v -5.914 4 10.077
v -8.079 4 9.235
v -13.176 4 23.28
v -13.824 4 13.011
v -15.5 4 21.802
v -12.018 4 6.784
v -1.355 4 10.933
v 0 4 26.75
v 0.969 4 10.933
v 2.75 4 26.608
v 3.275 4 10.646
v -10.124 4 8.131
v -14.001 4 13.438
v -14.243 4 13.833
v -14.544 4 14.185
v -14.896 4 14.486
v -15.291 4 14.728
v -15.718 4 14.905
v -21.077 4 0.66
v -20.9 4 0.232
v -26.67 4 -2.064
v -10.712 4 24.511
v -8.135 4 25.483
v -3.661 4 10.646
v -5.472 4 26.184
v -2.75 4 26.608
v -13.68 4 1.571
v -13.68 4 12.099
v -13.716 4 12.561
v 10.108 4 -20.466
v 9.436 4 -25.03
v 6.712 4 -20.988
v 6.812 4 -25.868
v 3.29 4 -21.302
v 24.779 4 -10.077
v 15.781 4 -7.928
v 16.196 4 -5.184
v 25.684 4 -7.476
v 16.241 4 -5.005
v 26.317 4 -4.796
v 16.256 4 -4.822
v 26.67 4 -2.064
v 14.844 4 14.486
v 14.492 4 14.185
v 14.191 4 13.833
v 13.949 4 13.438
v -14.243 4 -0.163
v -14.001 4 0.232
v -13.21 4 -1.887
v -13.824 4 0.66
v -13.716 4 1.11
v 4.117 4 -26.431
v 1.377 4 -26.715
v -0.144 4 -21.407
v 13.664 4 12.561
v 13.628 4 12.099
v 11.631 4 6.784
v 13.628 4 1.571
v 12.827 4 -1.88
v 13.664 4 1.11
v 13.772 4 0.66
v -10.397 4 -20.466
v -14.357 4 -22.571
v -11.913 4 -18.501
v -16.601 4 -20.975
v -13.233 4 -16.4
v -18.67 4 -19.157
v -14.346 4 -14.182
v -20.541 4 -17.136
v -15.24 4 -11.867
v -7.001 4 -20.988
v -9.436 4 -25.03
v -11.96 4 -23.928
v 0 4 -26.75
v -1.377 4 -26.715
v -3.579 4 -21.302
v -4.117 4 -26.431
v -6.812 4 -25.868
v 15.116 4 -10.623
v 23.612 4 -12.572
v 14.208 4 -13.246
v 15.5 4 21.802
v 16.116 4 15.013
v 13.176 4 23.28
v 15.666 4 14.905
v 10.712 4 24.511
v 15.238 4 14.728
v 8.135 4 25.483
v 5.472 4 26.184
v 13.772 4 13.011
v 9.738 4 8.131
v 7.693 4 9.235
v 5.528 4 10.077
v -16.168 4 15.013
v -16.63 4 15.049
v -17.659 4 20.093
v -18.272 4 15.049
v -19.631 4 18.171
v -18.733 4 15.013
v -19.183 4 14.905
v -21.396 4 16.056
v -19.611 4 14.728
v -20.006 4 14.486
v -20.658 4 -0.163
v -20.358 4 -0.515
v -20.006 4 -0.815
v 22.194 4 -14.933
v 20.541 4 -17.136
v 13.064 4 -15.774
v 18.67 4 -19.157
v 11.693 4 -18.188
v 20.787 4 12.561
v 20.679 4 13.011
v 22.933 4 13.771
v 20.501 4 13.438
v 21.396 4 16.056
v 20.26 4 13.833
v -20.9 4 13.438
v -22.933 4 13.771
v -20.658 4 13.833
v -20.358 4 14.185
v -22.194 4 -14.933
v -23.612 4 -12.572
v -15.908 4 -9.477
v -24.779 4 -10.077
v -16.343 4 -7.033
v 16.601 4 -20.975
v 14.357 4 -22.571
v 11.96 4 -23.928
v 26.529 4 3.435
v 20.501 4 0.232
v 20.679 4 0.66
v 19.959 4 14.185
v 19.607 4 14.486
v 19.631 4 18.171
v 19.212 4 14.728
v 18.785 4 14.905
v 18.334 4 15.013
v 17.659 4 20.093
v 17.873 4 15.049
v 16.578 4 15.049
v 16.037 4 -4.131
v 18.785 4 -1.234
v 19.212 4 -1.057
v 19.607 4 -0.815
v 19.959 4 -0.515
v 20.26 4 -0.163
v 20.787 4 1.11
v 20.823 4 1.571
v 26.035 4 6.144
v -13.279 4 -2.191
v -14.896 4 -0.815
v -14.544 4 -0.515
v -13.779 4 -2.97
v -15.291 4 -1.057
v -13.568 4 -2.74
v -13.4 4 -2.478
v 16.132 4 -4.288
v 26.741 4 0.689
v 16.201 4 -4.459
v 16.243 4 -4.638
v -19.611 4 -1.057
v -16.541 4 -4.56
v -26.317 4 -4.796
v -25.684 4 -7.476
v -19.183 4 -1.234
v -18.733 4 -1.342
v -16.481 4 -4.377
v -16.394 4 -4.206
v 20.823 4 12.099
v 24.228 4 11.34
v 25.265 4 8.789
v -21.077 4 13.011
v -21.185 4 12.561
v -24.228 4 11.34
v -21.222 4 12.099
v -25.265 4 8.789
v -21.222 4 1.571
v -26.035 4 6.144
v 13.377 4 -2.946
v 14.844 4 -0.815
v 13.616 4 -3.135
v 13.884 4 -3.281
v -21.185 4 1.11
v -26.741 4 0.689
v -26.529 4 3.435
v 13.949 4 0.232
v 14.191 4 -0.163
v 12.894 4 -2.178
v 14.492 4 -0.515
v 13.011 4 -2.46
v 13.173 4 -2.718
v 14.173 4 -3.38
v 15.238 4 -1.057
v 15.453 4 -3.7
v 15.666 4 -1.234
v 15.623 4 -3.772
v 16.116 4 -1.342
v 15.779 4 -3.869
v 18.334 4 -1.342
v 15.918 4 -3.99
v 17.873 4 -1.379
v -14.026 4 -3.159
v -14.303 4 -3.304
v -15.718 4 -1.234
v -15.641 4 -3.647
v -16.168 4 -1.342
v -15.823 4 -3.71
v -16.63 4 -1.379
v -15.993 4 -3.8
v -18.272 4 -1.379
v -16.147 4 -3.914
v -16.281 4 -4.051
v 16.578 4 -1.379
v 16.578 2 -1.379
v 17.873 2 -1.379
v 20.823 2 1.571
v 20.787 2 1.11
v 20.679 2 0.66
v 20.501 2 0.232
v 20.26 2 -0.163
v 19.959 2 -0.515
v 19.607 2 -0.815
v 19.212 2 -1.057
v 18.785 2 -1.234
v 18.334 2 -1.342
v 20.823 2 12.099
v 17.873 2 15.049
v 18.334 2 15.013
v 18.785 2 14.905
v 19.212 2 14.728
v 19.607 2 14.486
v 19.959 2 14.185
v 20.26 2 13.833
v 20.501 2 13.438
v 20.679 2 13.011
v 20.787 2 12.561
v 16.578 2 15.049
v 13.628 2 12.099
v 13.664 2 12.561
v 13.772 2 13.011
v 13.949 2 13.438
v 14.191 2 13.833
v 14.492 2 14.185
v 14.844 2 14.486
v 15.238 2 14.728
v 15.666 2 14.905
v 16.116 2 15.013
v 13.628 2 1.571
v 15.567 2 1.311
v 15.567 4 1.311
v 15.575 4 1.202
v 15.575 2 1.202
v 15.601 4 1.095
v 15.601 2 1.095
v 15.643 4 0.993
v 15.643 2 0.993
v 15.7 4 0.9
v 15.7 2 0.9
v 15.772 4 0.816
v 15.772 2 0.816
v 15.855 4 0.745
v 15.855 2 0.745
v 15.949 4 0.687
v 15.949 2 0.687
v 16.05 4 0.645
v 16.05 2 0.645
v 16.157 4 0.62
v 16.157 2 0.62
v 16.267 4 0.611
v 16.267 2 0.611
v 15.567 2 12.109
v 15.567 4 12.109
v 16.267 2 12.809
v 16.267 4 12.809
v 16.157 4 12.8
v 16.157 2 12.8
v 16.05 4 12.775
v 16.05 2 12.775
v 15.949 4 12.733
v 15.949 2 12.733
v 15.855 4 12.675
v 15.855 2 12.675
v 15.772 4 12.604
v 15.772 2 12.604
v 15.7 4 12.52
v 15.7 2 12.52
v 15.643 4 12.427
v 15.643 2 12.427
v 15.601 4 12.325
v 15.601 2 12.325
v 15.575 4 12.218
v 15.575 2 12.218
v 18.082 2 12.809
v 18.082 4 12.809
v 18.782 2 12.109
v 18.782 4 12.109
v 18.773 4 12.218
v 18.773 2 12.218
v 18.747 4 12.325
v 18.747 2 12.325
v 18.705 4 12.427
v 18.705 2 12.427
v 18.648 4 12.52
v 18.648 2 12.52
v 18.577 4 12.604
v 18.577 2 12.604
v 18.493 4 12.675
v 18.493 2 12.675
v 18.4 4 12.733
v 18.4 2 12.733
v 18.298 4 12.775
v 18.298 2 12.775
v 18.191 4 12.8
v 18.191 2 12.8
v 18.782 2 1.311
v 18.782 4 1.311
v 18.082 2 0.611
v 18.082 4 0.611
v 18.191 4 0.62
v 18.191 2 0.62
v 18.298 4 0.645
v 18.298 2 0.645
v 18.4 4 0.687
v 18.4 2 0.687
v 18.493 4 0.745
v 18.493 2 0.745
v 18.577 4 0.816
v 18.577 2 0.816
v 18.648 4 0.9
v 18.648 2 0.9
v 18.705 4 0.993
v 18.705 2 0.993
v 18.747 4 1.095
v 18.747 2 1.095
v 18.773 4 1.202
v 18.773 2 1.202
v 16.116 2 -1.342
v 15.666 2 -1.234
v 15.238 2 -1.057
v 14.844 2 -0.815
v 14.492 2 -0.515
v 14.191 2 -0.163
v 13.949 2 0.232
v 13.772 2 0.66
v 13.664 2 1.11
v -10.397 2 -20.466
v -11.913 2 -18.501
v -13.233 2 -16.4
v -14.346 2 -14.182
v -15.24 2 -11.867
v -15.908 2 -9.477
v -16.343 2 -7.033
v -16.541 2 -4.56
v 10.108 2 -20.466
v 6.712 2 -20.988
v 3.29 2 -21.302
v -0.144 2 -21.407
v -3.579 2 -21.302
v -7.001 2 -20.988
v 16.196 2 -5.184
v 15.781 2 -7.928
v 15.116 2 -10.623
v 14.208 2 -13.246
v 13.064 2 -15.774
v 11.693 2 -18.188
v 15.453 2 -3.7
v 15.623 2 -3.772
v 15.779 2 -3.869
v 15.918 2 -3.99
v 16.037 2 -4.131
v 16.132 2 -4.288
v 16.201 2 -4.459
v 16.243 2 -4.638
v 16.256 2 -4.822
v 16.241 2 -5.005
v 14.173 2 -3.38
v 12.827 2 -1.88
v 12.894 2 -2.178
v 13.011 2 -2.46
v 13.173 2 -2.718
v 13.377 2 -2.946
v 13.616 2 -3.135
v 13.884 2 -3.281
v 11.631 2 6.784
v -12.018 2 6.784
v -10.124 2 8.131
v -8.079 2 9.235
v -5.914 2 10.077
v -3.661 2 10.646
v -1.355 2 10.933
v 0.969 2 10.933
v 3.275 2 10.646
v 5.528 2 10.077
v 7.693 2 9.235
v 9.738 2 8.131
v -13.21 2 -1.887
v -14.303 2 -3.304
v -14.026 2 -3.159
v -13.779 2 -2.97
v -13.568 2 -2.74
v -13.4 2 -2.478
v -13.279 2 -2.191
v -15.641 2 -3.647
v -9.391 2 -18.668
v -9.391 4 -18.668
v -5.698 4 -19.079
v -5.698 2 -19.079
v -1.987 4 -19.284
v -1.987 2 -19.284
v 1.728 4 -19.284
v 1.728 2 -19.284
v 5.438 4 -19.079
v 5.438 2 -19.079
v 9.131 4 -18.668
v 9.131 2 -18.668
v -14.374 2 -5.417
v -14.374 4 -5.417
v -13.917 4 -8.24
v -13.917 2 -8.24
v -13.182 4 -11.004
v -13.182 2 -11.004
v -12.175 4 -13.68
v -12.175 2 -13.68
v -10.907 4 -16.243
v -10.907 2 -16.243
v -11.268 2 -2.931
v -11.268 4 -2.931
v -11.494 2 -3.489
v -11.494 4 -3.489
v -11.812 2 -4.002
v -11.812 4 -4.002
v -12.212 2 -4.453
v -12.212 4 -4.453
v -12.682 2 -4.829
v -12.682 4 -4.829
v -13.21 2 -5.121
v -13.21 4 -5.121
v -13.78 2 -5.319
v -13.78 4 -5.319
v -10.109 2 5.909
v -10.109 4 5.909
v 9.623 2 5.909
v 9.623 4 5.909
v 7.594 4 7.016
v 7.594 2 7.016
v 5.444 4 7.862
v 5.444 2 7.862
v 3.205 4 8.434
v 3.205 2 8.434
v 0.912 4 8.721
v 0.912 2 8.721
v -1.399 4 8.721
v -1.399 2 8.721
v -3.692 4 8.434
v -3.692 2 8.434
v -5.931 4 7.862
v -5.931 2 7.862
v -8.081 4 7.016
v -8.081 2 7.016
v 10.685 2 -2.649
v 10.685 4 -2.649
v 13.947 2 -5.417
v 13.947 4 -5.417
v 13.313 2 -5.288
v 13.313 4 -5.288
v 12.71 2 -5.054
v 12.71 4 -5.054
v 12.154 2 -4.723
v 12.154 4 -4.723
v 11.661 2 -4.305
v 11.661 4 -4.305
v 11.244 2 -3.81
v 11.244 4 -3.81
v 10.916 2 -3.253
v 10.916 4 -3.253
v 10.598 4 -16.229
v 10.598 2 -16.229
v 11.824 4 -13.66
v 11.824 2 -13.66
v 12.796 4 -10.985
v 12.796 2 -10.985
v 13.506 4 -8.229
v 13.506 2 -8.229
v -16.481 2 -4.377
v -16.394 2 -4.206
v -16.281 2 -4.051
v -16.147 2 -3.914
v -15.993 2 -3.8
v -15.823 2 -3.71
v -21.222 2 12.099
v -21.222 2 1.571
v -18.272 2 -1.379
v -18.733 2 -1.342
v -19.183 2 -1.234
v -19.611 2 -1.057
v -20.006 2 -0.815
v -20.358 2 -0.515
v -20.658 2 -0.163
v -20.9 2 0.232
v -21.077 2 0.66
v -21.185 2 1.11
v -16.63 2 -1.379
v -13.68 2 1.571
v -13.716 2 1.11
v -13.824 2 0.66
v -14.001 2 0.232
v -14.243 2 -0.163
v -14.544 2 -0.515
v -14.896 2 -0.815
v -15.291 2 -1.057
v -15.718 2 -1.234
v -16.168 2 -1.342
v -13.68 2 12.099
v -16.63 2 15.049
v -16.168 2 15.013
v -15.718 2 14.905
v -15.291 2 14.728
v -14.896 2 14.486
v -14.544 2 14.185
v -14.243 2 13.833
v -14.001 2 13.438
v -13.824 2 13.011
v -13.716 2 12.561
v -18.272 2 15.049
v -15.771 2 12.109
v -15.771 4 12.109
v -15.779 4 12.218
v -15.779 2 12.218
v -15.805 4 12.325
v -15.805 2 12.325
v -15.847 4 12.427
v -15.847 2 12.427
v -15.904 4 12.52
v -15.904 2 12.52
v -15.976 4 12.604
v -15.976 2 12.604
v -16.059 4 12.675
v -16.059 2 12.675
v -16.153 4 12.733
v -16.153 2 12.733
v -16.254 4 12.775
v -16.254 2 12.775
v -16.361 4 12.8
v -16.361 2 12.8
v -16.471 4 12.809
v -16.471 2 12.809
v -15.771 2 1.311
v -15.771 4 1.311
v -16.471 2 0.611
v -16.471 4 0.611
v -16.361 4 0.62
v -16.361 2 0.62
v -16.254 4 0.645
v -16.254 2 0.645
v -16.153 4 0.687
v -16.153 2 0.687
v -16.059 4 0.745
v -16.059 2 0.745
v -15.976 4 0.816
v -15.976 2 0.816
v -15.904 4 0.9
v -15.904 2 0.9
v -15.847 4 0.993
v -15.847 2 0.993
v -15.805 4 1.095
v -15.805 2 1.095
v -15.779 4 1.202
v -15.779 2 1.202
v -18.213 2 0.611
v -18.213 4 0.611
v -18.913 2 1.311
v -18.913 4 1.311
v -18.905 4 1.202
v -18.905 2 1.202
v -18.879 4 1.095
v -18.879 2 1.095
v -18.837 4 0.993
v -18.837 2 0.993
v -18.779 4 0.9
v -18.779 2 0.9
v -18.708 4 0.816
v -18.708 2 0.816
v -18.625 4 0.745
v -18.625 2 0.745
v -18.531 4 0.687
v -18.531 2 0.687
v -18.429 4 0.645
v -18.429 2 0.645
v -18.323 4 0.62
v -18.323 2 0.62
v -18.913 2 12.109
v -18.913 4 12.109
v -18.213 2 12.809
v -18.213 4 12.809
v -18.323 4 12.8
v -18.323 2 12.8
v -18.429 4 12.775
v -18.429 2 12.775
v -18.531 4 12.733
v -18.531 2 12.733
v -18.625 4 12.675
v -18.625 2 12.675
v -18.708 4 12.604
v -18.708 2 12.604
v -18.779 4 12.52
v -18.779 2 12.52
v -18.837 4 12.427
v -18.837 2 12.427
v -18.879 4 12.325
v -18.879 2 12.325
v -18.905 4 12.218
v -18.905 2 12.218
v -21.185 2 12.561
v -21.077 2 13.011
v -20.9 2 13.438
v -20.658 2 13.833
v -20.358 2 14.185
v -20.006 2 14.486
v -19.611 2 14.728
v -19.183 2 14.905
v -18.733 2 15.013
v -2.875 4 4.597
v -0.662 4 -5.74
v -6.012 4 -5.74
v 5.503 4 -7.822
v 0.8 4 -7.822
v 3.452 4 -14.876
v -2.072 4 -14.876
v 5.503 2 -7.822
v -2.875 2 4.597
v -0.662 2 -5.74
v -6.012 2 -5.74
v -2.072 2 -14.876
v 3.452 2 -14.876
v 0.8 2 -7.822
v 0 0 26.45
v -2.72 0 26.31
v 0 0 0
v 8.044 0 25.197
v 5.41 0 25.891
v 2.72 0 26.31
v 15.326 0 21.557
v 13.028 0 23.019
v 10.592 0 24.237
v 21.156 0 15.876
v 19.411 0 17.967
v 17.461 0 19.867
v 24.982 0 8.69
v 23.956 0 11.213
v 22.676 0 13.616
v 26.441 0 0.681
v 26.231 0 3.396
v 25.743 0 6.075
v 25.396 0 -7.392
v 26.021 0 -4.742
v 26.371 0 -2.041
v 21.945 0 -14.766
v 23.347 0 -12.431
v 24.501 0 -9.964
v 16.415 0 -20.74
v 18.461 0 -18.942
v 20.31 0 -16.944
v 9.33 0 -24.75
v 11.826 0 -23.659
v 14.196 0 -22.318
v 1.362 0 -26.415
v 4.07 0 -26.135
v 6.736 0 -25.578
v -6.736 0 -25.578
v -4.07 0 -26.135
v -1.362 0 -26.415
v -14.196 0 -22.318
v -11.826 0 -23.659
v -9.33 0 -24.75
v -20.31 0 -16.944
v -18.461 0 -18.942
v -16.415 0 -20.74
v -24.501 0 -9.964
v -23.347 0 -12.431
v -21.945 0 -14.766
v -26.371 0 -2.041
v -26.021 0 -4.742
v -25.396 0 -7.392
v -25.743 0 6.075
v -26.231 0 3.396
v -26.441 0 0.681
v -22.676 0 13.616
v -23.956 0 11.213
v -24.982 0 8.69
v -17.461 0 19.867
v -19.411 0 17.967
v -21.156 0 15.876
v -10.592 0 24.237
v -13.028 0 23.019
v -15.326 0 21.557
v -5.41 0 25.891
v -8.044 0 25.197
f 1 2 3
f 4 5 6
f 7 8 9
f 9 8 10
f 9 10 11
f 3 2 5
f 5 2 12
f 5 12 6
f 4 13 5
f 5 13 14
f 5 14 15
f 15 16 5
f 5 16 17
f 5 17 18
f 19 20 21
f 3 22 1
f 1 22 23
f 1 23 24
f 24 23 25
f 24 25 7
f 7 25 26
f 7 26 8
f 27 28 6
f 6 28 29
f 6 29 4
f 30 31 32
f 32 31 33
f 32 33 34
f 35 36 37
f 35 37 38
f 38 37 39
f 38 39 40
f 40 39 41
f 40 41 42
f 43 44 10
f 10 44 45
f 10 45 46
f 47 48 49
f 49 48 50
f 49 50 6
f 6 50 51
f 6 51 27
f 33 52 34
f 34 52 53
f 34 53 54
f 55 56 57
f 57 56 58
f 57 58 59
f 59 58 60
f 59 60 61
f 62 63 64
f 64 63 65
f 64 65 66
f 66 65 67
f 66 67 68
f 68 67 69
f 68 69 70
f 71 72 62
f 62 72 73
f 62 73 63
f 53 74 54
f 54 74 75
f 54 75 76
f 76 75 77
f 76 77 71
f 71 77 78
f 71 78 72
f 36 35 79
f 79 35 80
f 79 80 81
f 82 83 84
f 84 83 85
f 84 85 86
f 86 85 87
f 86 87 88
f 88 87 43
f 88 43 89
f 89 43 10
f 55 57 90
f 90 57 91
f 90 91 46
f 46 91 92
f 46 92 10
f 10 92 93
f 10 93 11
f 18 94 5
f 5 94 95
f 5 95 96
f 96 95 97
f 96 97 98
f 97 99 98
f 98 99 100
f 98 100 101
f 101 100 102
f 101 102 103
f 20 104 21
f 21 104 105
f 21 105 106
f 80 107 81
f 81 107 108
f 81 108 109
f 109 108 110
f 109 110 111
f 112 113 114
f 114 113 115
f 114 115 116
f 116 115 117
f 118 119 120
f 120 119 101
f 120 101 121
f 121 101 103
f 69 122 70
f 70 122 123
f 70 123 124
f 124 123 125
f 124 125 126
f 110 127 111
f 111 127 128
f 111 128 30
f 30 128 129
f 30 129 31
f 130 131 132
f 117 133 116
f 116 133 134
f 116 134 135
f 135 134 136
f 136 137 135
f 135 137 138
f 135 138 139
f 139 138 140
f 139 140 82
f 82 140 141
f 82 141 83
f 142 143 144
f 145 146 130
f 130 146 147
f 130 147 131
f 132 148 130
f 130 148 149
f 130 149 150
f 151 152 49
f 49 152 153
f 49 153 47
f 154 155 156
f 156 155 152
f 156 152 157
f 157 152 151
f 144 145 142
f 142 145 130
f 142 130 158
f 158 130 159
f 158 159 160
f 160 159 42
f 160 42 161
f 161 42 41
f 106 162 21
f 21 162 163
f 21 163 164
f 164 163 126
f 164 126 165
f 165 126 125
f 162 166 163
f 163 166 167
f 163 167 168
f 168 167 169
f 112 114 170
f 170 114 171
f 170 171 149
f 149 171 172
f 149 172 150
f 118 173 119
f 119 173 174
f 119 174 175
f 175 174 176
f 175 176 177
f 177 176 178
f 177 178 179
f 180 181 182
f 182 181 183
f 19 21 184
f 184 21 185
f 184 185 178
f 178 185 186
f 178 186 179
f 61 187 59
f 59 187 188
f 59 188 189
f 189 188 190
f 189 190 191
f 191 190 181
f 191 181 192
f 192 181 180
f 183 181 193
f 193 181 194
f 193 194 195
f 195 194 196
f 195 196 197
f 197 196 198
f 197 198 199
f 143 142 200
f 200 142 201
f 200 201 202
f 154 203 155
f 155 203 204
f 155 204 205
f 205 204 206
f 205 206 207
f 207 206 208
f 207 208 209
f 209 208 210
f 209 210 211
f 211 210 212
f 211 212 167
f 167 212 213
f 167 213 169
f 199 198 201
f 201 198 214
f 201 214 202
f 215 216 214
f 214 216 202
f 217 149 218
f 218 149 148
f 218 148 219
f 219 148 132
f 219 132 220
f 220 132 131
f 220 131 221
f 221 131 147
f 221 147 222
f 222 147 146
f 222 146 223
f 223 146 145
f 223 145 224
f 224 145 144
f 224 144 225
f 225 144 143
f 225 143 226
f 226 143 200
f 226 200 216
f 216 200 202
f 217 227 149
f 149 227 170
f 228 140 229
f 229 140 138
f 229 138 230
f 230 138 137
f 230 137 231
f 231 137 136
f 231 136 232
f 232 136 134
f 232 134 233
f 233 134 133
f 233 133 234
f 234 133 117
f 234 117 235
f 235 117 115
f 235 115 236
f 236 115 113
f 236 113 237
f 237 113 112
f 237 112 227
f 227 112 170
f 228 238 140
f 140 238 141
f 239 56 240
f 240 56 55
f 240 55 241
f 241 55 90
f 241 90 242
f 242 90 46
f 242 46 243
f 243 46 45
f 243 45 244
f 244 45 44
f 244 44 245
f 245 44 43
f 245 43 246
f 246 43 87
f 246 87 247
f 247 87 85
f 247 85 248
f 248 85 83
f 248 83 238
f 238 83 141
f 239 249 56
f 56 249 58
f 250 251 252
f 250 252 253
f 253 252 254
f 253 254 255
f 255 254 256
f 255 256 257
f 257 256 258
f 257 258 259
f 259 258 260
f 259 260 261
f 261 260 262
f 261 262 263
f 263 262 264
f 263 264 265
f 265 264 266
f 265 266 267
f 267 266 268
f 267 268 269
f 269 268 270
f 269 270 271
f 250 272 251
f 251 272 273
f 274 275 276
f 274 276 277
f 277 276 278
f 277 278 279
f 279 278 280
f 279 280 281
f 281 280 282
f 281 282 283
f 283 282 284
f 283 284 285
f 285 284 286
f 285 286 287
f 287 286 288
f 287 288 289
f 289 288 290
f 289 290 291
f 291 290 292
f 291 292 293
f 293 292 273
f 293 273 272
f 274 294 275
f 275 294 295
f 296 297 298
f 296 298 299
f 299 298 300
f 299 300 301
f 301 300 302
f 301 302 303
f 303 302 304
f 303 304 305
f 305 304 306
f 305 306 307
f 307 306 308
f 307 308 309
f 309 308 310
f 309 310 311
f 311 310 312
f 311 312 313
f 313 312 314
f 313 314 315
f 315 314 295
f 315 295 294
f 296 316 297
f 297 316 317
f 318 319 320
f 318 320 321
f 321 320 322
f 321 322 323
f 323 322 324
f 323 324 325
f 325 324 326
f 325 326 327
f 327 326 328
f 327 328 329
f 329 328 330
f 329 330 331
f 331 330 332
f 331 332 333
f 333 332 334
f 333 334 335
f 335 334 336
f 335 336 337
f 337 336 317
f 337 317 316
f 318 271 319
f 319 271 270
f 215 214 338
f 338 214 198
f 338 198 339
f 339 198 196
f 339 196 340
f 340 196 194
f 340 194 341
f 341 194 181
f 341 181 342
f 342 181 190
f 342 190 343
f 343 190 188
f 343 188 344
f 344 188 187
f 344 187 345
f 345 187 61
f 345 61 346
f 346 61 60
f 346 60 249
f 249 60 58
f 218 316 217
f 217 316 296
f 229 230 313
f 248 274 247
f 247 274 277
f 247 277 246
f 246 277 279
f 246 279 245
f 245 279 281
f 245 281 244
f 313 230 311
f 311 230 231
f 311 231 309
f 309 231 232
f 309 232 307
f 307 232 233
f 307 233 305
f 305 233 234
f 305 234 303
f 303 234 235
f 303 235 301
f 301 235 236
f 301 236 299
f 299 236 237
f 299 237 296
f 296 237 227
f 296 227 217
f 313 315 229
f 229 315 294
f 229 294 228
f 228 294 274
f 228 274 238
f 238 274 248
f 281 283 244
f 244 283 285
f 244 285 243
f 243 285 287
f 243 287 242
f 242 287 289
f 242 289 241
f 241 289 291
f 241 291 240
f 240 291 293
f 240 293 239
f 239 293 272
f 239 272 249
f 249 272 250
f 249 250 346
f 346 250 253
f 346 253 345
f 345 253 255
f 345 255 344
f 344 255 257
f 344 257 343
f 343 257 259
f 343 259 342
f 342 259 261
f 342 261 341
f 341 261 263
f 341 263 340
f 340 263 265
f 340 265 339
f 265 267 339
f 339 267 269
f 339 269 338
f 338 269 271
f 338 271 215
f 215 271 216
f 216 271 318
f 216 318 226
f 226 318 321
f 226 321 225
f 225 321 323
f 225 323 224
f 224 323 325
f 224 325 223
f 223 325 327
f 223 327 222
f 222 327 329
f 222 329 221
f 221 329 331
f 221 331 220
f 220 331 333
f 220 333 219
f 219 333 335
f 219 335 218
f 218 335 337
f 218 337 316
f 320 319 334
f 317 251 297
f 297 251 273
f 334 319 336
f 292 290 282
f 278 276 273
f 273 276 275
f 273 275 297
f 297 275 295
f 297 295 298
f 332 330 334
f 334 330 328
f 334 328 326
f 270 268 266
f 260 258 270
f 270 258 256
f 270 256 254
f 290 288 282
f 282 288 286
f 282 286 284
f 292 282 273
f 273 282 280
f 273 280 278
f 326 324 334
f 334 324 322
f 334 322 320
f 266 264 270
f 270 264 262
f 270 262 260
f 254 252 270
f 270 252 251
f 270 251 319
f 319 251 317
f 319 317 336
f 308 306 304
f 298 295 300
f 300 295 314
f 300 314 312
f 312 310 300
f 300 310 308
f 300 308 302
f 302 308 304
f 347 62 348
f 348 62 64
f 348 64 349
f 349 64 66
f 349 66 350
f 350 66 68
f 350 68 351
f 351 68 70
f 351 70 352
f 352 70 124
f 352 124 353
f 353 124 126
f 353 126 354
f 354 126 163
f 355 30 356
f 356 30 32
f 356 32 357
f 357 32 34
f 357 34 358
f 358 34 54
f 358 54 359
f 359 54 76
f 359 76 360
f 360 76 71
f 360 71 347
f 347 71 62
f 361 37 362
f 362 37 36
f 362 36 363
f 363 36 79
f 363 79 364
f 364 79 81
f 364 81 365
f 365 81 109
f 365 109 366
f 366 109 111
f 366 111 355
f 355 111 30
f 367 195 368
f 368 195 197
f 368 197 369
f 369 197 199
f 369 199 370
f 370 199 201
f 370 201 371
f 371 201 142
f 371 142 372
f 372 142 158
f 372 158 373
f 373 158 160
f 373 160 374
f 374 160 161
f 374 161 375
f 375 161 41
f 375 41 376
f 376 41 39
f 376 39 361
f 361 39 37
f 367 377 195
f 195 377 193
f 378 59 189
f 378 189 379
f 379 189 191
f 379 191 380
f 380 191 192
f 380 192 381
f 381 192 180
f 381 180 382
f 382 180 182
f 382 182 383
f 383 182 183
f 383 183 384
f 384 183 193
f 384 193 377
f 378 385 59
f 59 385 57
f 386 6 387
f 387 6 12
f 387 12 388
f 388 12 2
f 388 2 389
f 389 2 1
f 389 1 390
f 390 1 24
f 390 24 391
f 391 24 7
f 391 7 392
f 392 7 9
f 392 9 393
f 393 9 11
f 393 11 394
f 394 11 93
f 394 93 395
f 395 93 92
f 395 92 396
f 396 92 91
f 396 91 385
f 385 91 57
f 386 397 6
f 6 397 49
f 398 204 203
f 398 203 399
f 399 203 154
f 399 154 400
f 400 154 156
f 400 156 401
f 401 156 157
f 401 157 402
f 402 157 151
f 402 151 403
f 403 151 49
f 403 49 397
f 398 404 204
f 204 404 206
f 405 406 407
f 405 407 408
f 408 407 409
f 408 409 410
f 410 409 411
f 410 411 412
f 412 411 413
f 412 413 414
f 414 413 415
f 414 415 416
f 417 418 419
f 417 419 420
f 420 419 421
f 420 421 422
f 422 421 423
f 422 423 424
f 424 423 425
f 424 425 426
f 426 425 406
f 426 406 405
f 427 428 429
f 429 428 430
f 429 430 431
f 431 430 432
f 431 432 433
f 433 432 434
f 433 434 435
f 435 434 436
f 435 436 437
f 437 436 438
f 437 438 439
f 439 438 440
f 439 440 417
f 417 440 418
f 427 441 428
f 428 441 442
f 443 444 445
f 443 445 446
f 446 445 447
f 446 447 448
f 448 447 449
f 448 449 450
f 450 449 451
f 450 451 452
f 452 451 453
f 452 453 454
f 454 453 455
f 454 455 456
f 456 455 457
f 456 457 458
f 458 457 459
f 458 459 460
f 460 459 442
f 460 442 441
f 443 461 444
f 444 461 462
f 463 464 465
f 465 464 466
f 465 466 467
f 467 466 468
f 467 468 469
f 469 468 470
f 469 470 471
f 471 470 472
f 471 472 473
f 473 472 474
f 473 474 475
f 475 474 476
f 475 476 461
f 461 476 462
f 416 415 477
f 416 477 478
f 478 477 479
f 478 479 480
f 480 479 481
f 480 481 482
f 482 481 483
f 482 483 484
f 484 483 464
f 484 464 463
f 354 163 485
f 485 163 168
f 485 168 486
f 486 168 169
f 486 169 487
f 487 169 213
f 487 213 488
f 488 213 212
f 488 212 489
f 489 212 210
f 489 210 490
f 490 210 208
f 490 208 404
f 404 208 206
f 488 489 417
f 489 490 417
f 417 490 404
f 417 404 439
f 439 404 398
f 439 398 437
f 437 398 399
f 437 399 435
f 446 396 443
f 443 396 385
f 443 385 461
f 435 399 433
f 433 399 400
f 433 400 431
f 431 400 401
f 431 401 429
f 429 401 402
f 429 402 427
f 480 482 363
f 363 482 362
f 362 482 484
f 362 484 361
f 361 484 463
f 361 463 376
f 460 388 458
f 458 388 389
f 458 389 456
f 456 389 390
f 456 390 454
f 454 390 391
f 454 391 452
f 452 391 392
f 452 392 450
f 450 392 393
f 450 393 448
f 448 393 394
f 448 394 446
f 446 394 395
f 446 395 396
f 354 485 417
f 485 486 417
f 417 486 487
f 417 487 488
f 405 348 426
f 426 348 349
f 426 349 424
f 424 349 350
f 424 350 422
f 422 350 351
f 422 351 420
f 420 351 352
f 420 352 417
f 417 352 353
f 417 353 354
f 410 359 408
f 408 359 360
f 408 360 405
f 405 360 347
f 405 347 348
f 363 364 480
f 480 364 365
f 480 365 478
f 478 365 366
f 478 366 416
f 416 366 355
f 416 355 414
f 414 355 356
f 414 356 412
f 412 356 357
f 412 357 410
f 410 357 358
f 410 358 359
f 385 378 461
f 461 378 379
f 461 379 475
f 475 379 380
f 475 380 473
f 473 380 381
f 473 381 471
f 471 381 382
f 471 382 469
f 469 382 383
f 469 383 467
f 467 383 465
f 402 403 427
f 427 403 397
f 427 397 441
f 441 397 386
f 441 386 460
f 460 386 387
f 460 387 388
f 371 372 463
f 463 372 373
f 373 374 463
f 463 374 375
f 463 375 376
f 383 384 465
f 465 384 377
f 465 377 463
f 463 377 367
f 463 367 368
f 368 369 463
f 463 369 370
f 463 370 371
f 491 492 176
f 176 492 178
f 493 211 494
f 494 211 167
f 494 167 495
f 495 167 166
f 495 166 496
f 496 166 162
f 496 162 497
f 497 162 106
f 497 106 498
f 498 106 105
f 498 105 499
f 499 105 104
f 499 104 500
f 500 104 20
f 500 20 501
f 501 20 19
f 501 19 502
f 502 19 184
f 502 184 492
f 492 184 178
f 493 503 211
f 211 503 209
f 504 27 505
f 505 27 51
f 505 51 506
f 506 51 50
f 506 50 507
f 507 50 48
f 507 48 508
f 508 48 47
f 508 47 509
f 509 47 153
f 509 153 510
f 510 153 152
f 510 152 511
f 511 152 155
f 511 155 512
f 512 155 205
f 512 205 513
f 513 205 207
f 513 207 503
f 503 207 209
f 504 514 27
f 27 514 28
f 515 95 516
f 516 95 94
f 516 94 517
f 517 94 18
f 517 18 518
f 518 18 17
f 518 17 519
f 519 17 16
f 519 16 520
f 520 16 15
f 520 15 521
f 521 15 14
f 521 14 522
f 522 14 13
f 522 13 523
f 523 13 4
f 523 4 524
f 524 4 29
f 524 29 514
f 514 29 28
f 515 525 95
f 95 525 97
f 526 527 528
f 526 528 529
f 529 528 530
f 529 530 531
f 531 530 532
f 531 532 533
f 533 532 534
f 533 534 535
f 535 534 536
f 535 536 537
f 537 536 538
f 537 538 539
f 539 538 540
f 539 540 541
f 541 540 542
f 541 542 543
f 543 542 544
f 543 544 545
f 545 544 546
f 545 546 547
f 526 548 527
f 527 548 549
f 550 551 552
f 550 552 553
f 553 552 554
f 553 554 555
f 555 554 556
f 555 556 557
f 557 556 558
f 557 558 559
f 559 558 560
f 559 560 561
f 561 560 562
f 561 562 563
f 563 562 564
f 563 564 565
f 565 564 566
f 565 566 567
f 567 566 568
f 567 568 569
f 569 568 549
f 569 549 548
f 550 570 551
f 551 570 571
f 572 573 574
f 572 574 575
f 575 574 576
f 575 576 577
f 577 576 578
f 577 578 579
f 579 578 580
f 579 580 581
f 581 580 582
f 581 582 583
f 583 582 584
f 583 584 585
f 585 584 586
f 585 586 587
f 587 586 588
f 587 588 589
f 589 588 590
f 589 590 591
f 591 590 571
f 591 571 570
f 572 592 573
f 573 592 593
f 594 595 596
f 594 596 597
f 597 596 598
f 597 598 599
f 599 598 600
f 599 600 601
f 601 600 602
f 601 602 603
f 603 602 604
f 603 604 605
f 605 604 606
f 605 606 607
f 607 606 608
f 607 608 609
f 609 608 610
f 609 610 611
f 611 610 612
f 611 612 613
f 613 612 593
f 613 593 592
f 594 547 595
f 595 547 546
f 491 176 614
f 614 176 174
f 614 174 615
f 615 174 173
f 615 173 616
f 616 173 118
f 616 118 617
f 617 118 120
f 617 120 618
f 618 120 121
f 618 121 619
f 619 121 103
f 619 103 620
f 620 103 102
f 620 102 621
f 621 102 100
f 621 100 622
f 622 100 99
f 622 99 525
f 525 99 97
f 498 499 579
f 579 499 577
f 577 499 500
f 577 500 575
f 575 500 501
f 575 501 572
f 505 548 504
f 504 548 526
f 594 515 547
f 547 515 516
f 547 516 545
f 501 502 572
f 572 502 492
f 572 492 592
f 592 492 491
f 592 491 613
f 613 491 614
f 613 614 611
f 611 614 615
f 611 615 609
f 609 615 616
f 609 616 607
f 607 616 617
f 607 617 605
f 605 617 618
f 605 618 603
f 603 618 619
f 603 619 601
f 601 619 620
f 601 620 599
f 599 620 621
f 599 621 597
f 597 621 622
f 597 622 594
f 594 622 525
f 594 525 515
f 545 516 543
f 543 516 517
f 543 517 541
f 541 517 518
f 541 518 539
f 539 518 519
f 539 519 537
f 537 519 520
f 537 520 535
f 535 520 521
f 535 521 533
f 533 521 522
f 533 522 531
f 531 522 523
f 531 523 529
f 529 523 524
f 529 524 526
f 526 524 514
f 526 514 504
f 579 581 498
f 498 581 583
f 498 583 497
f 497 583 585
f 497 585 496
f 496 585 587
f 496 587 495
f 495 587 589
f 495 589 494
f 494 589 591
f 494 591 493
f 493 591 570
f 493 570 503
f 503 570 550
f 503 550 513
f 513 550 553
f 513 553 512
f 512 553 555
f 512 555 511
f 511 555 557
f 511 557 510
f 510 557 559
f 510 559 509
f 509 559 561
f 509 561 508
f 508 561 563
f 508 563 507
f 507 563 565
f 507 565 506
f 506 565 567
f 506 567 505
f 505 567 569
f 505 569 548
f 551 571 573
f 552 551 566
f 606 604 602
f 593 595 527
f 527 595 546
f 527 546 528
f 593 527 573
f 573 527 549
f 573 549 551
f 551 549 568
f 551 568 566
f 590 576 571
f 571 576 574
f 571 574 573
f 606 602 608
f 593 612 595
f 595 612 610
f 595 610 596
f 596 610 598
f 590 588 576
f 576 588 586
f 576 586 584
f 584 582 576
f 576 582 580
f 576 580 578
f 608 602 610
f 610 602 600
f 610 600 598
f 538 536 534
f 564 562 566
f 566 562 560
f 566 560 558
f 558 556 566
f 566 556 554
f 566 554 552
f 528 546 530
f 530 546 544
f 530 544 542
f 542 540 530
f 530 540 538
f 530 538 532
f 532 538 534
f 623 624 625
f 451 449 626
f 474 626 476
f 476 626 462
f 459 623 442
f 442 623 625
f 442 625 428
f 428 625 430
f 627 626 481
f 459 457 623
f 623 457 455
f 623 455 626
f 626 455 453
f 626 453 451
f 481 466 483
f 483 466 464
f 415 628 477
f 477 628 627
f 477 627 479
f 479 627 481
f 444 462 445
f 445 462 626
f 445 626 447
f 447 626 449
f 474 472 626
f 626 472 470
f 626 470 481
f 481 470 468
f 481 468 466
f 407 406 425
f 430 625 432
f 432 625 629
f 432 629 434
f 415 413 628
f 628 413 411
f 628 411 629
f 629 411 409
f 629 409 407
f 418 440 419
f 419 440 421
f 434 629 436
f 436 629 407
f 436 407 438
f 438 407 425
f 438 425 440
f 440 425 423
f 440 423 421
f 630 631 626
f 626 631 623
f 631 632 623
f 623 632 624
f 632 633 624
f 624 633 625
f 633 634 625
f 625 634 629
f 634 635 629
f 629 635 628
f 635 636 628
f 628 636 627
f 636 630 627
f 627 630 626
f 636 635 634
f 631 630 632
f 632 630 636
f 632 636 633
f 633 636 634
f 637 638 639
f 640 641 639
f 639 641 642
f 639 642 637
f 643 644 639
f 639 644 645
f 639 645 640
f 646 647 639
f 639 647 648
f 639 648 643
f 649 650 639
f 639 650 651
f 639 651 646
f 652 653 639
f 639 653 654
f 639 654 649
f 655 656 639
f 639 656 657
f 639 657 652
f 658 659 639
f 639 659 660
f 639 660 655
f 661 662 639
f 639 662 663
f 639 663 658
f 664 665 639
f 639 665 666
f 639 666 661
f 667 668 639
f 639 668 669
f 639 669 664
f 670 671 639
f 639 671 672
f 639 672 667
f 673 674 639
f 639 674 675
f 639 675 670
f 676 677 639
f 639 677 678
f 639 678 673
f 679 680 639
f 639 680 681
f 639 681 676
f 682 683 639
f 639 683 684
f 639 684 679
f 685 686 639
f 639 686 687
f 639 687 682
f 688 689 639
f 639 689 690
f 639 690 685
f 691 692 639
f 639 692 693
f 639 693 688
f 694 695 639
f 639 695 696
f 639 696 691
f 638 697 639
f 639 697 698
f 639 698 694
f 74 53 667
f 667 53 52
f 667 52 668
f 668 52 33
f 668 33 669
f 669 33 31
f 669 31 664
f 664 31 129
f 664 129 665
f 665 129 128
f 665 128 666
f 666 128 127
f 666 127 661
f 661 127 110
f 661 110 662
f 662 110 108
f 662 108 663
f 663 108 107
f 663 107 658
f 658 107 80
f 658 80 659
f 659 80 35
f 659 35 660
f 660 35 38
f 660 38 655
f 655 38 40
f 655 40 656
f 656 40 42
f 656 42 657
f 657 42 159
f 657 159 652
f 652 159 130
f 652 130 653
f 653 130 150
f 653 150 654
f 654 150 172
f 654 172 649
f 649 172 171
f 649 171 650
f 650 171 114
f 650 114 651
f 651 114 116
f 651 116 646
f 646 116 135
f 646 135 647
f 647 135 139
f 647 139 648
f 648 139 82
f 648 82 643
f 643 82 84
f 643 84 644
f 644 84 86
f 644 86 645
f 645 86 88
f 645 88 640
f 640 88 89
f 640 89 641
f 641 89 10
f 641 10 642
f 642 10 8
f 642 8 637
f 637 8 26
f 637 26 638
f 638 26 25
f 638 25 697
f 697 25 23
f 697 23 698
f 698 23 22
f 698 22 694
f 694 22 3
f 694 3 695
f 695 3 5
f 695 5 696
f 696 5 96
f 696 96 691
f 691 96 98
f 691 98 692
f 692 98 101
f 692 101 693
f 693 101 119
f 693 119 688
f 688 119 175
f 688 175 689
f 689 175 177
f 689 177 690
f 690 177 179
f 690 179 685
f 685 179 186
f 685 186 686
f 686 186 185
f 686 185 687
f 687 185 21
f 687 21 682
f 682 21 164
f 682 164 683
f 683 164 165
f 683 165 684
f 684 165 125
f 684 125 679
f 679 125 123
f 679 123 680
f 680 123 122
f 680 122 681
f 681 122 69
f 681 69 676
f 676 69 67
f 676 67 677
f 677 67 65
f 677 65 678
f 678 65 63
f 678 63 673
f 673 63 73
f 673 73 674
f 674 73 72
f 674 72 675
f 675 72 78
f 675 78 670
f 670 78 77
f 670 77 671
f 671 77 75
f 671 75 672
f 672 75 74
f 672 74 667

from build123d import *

# Parameters (mm, degrees)
CROQUIS1_R              = 26.25
SALIENTE_EXTRUIR1_DEPTH = 4
CORTAR_EXTRUIR2_DEPTH   = 2
CROQUIS3_R              = 26.75
CROQUIS3_R_2            = 26.25
SALIENTE_EXTRUIR2_DEPTH = 4
CHAFL_N2_SIZE           = 0.3
CHAFL_N2_SIZE_2         = 4


with BuildPart() as part:
    # Croquis1 → Saliente-Extruir1 (new body)
    with BuildSketch(Plane(origin=(0, 0, 0), x_dir=(1, 0, 0), z_dir=(0, 1, 0))):
        with Locations(Location((0, 0, 0), (0, 0, 270))):
            Circle(CROQUIS1_R)
    extrude(amount=SALIENTE_EXTRUIR1_DEPTH)

    # Croquis2 → Cortar-Extruir2 (cut)
    # profile 1 of 4: a face of its own
    with BuildSketch(Plane(origin=(0, 4, 0), x_dir=(1, 0, 0), z_dir=(0, 1, 0))):
        with BuildLine():
            Line((16.577628019, 1.378684251), (17.872942997, 1.378684251))
            ThreePointArc((17.872942997, 1.378684251), (19.958908001, 0.514649256), (20.822942997, -1.571315749))
            Line((20.822942997, -1.571315749), (20.822942997, -12.099082076))
            ThreePointArc((20.822942997, -12.099082076), (19.958908001, -14.18504708), (17.872942997, -15.049082076))
            Line((17.872942997, -15.049082076), (16.577628019, -15.049082076))
            ThreePointArc((16.577628019, -15.049082076), (14.491663014, -14.18504708), (13.627628019, -12.099082076))
            Line((13.627628019, -12.099082076), (13.627628019, -1.571315749))
            ThreePointArc((13.627628019, -1.571315749), (14.491663014, 0.514649256), (16.577628019, 1.378684251))
        make_face()
        with BuildLine():
            ThreePointArc((16.26679092, -0.611177343), (15.771816174, -0.816202597), (15.56679092, -1.311177343))
            Line((15.56679092, -1.311177343), (15.56679092, -12.108932122))
            ThreePointArc((15.56679092, -12.108932122), (15.771816174, -12.603906869), (16.26679092, -12.808932122))
            Line((16.26679092, -12.808932122), (18.08171889, -12.808932122))
            ThreePointArc((18.08171889, -12.808932122), (18.576693636, -12.603906869), (18.78171889, -12.108932122))
            Line((18.78171889, -12.108932122), (18.78171889, -1.311177343))
            ThreePointArc((18.78171889, -1.311177343), (18.576693636, -0.816202597), (18.08171889, -0.611177343))
            Line((18.08171889, -0.611177343), (16.26679092, -0.611177343))
        make_face(mode=Mode.SUBTRACT)
    # profile 2 of 4: a face of its own
    with BuildSketch(Plane(origin=(0, 4, 0), x_dir=(1, 0, 0), z_dir=(0, 1, 0))):
        with BuildLine():
            ThreePointArc((-16.541154267, 4.559666994), (-14.820529985, 13.034857679), (-10.397118387, 20.466064507))
            ThreePointArc((-10.397118387, 20.466064507), (-0.144491455, 21.407214974), (10.108135477, 20.466064507))
            ThreePointArc((10.108135477, 20.466064507), (14.207692764, 13.245645686), (16.196417943, 5.184269249))
            ThreePointArc((16.196417943, 5.184269249), (16.132024065, 4.288372794), (15.452996259, 3.700411684))
            Line((15.452996259, 3.700411684), (14.173141036, 3.380229026))
            ThreePointArc((14.173141036, 3.380229026), (13.270359302, 2.836290622), (12.826889255, 1.880143059))
            Line((12.826889255, 1.880143059), (11.63113204, -6.78360674))
            ThreePointArc((11.63113204, -6.78360674), (-0.193198097, -10.969098115), (-12.017528234, -6.78360674))
            Line((-12.017528234, -6.78360674), (-13.210287359, 1.886657738))
            ThreePointArc((-13.210287359, 1.886657738), (-13.568040347, 2.740473566), (-14.30282929, 3.303566701))
            Line((-14.30282929, 3.303566701), (-15.641463565, 3.64729627))
            ThreePointArc((-15.641463565, 3.64729627), (-16.21669402, 3.979839116), (-16.541154267, 4.559666994))
        make_face()
        with BuildLine():
            ThreePointArc((-9.39054296, 18.667613115), (-0.129607572, 19.310065951), (9.131327816, 18.667613115))
            ThreePointArc((9.131327816, 18.667613115), (12.342092273, 12.334309576), (13.946689107, 5.417300749))
            ThreePointArc((13.946689107, 5.417300749), (11.898739751, 4.524535831), (10.6848875, 2.648985651))
            Line((10.6848875, 2.648985651), (9.622585247, -5.908678465))
            ThreePointArc((9.622585247, -5.908678465), (-0.243319564, -8.757565726), (-10.109224375, -5.908678465))
            Line((-10.109224375, -5.908678465), (-11.267843272, 2.930632851))
            ThreePointArc((-11.267843272, 2.930632851), (-12.439150787, 4.651094628), (-14.374319564, 5.417300749))
            ThreePointArc((-14.374319564, 5.417300749), (-12.712019595, 12.354486023), (-9.39054296, 18.667613115))
        make_face(mode=Mode.SUBTRACT)
    # profile 3 of 4: a face of its own
    with BuildSketch(Plane(origin=(0, 4, 0), x_dir=(1, 0, 0), z_dir=(0, 1, 0))):
        with BuildLine():
            Line((-21.221754159, -1.571315749), (-21.221754159, -12.099082076))
            ThreePointArc((-21.221754159, -12.099082076), (-20.357719163, -14.18504708), (-18.271754159, -15.049082076))
            Line((-18.271754159, -15.049082076), (-16.629915981, -15.049082076))
            ThreePointArc((-16.629915981, -15.049082076), (-14.543950977, -14.18504708), (-13.679915981, -12.099082076))
            Line((-13.679915981, -12.099082076), (-13.679915981, -1.571315749))
            ThreePointArc((-13.679915981, -1.571315749), (-14.543950977, 0.514649256), (-16.629915981, 1.378684251))
            Line((-16.629915981, 1.378684251), (-18.271754159, 1.378684251))
            ThreePointArc((-18.271754159, 1.378684251), (-20.357719163, 0.514649256), (-21.221754159, -1.571315749))
        make_face()
        with BuildLine():
            ThreePointArc((-16.470722605, -12.808932122), (-15.975747858, -12.603906869), (-15.770722605, -12.108932122))
            Line((-15.770722605, -12.108932122), (-15.770722605, -1.311177343))
            ThreePointArc((-15.770722605, -1.311177343), (-15.975747858, -0.816202597), (-16.470722605, -0.611177343))
            Line((-16.470722605, -0.611177343), (-18.213155179, -0.611177343))
            ThreePointArc((-18.213155179, -0.611177343), (-18.708129925, -0.816202597), (-18.913155179, -1.311177343))
            Line((-18.913155179, -1.311177343), (-18.913155179, -12.108932122))
            ThreePointArc((-18.913155179, -12.108932122), (-18.708129925, -12.603906869), (-18.213155179, -12.808932122))
            Line((-18.213155179, -12.808932122), (-16.470722605, -12.808932122))
        make_face(mode=Mode.SUBTRACT)
    # profile 4 of 4: a face of its own
    with BuildSketch(Plane(origin=(0, 4, 0), x_dir=(1, 0, 0), z_dir=(0, 1, 0))):
        Polygon((5.502535459, 7.821900935), (0.799555116, 7.821900935), (3.451735919, 14.875951975), (-2.071830813, 14.875951975), (-6.012416606, 5.739731652), (-0.66220899, 5.739731652), (-2.874648277, -4.596906534), align=None)
    extrude(amount=-CORTAR_EXTRUIR2_DEPTH, mode=Mode.SUBTRACT)

    # Croquis3 → Saliente-Extruir2 (add)
    with BuildSketch(Plane.XZ):
        with Locations(Location((0, 0, 0), (0, 0, 270))):
            Circle(CROQUIS3_R)
        Circle(CROQUIS3_R_2, mode=Mode.SUBTRACT)
    extrude(amount=-SALIENTE_EXTRUIR2_DEPTH)

    # Chaflán2
    # the kernel refuses this chamfer: 4, 0.3 mm, written as the material it takes off along each edge
    with BuildSketch(Plane(origin=(0, 0, 0), x_dir=(0, 0, -1), z_dir=(-1, 0, 0))) as chafl_n2_piece_1:
        Polygon((26.75 - CHAFL_N2_SIZE, 0), (26.75, -CHAFL_N2_SIZE_2), (26.75, 0), align=None)
    revolve(axis=Axis((0, 0, 0), (0, -1, 0)), mode=Mode.SUBTRACT)


solid = part.part
